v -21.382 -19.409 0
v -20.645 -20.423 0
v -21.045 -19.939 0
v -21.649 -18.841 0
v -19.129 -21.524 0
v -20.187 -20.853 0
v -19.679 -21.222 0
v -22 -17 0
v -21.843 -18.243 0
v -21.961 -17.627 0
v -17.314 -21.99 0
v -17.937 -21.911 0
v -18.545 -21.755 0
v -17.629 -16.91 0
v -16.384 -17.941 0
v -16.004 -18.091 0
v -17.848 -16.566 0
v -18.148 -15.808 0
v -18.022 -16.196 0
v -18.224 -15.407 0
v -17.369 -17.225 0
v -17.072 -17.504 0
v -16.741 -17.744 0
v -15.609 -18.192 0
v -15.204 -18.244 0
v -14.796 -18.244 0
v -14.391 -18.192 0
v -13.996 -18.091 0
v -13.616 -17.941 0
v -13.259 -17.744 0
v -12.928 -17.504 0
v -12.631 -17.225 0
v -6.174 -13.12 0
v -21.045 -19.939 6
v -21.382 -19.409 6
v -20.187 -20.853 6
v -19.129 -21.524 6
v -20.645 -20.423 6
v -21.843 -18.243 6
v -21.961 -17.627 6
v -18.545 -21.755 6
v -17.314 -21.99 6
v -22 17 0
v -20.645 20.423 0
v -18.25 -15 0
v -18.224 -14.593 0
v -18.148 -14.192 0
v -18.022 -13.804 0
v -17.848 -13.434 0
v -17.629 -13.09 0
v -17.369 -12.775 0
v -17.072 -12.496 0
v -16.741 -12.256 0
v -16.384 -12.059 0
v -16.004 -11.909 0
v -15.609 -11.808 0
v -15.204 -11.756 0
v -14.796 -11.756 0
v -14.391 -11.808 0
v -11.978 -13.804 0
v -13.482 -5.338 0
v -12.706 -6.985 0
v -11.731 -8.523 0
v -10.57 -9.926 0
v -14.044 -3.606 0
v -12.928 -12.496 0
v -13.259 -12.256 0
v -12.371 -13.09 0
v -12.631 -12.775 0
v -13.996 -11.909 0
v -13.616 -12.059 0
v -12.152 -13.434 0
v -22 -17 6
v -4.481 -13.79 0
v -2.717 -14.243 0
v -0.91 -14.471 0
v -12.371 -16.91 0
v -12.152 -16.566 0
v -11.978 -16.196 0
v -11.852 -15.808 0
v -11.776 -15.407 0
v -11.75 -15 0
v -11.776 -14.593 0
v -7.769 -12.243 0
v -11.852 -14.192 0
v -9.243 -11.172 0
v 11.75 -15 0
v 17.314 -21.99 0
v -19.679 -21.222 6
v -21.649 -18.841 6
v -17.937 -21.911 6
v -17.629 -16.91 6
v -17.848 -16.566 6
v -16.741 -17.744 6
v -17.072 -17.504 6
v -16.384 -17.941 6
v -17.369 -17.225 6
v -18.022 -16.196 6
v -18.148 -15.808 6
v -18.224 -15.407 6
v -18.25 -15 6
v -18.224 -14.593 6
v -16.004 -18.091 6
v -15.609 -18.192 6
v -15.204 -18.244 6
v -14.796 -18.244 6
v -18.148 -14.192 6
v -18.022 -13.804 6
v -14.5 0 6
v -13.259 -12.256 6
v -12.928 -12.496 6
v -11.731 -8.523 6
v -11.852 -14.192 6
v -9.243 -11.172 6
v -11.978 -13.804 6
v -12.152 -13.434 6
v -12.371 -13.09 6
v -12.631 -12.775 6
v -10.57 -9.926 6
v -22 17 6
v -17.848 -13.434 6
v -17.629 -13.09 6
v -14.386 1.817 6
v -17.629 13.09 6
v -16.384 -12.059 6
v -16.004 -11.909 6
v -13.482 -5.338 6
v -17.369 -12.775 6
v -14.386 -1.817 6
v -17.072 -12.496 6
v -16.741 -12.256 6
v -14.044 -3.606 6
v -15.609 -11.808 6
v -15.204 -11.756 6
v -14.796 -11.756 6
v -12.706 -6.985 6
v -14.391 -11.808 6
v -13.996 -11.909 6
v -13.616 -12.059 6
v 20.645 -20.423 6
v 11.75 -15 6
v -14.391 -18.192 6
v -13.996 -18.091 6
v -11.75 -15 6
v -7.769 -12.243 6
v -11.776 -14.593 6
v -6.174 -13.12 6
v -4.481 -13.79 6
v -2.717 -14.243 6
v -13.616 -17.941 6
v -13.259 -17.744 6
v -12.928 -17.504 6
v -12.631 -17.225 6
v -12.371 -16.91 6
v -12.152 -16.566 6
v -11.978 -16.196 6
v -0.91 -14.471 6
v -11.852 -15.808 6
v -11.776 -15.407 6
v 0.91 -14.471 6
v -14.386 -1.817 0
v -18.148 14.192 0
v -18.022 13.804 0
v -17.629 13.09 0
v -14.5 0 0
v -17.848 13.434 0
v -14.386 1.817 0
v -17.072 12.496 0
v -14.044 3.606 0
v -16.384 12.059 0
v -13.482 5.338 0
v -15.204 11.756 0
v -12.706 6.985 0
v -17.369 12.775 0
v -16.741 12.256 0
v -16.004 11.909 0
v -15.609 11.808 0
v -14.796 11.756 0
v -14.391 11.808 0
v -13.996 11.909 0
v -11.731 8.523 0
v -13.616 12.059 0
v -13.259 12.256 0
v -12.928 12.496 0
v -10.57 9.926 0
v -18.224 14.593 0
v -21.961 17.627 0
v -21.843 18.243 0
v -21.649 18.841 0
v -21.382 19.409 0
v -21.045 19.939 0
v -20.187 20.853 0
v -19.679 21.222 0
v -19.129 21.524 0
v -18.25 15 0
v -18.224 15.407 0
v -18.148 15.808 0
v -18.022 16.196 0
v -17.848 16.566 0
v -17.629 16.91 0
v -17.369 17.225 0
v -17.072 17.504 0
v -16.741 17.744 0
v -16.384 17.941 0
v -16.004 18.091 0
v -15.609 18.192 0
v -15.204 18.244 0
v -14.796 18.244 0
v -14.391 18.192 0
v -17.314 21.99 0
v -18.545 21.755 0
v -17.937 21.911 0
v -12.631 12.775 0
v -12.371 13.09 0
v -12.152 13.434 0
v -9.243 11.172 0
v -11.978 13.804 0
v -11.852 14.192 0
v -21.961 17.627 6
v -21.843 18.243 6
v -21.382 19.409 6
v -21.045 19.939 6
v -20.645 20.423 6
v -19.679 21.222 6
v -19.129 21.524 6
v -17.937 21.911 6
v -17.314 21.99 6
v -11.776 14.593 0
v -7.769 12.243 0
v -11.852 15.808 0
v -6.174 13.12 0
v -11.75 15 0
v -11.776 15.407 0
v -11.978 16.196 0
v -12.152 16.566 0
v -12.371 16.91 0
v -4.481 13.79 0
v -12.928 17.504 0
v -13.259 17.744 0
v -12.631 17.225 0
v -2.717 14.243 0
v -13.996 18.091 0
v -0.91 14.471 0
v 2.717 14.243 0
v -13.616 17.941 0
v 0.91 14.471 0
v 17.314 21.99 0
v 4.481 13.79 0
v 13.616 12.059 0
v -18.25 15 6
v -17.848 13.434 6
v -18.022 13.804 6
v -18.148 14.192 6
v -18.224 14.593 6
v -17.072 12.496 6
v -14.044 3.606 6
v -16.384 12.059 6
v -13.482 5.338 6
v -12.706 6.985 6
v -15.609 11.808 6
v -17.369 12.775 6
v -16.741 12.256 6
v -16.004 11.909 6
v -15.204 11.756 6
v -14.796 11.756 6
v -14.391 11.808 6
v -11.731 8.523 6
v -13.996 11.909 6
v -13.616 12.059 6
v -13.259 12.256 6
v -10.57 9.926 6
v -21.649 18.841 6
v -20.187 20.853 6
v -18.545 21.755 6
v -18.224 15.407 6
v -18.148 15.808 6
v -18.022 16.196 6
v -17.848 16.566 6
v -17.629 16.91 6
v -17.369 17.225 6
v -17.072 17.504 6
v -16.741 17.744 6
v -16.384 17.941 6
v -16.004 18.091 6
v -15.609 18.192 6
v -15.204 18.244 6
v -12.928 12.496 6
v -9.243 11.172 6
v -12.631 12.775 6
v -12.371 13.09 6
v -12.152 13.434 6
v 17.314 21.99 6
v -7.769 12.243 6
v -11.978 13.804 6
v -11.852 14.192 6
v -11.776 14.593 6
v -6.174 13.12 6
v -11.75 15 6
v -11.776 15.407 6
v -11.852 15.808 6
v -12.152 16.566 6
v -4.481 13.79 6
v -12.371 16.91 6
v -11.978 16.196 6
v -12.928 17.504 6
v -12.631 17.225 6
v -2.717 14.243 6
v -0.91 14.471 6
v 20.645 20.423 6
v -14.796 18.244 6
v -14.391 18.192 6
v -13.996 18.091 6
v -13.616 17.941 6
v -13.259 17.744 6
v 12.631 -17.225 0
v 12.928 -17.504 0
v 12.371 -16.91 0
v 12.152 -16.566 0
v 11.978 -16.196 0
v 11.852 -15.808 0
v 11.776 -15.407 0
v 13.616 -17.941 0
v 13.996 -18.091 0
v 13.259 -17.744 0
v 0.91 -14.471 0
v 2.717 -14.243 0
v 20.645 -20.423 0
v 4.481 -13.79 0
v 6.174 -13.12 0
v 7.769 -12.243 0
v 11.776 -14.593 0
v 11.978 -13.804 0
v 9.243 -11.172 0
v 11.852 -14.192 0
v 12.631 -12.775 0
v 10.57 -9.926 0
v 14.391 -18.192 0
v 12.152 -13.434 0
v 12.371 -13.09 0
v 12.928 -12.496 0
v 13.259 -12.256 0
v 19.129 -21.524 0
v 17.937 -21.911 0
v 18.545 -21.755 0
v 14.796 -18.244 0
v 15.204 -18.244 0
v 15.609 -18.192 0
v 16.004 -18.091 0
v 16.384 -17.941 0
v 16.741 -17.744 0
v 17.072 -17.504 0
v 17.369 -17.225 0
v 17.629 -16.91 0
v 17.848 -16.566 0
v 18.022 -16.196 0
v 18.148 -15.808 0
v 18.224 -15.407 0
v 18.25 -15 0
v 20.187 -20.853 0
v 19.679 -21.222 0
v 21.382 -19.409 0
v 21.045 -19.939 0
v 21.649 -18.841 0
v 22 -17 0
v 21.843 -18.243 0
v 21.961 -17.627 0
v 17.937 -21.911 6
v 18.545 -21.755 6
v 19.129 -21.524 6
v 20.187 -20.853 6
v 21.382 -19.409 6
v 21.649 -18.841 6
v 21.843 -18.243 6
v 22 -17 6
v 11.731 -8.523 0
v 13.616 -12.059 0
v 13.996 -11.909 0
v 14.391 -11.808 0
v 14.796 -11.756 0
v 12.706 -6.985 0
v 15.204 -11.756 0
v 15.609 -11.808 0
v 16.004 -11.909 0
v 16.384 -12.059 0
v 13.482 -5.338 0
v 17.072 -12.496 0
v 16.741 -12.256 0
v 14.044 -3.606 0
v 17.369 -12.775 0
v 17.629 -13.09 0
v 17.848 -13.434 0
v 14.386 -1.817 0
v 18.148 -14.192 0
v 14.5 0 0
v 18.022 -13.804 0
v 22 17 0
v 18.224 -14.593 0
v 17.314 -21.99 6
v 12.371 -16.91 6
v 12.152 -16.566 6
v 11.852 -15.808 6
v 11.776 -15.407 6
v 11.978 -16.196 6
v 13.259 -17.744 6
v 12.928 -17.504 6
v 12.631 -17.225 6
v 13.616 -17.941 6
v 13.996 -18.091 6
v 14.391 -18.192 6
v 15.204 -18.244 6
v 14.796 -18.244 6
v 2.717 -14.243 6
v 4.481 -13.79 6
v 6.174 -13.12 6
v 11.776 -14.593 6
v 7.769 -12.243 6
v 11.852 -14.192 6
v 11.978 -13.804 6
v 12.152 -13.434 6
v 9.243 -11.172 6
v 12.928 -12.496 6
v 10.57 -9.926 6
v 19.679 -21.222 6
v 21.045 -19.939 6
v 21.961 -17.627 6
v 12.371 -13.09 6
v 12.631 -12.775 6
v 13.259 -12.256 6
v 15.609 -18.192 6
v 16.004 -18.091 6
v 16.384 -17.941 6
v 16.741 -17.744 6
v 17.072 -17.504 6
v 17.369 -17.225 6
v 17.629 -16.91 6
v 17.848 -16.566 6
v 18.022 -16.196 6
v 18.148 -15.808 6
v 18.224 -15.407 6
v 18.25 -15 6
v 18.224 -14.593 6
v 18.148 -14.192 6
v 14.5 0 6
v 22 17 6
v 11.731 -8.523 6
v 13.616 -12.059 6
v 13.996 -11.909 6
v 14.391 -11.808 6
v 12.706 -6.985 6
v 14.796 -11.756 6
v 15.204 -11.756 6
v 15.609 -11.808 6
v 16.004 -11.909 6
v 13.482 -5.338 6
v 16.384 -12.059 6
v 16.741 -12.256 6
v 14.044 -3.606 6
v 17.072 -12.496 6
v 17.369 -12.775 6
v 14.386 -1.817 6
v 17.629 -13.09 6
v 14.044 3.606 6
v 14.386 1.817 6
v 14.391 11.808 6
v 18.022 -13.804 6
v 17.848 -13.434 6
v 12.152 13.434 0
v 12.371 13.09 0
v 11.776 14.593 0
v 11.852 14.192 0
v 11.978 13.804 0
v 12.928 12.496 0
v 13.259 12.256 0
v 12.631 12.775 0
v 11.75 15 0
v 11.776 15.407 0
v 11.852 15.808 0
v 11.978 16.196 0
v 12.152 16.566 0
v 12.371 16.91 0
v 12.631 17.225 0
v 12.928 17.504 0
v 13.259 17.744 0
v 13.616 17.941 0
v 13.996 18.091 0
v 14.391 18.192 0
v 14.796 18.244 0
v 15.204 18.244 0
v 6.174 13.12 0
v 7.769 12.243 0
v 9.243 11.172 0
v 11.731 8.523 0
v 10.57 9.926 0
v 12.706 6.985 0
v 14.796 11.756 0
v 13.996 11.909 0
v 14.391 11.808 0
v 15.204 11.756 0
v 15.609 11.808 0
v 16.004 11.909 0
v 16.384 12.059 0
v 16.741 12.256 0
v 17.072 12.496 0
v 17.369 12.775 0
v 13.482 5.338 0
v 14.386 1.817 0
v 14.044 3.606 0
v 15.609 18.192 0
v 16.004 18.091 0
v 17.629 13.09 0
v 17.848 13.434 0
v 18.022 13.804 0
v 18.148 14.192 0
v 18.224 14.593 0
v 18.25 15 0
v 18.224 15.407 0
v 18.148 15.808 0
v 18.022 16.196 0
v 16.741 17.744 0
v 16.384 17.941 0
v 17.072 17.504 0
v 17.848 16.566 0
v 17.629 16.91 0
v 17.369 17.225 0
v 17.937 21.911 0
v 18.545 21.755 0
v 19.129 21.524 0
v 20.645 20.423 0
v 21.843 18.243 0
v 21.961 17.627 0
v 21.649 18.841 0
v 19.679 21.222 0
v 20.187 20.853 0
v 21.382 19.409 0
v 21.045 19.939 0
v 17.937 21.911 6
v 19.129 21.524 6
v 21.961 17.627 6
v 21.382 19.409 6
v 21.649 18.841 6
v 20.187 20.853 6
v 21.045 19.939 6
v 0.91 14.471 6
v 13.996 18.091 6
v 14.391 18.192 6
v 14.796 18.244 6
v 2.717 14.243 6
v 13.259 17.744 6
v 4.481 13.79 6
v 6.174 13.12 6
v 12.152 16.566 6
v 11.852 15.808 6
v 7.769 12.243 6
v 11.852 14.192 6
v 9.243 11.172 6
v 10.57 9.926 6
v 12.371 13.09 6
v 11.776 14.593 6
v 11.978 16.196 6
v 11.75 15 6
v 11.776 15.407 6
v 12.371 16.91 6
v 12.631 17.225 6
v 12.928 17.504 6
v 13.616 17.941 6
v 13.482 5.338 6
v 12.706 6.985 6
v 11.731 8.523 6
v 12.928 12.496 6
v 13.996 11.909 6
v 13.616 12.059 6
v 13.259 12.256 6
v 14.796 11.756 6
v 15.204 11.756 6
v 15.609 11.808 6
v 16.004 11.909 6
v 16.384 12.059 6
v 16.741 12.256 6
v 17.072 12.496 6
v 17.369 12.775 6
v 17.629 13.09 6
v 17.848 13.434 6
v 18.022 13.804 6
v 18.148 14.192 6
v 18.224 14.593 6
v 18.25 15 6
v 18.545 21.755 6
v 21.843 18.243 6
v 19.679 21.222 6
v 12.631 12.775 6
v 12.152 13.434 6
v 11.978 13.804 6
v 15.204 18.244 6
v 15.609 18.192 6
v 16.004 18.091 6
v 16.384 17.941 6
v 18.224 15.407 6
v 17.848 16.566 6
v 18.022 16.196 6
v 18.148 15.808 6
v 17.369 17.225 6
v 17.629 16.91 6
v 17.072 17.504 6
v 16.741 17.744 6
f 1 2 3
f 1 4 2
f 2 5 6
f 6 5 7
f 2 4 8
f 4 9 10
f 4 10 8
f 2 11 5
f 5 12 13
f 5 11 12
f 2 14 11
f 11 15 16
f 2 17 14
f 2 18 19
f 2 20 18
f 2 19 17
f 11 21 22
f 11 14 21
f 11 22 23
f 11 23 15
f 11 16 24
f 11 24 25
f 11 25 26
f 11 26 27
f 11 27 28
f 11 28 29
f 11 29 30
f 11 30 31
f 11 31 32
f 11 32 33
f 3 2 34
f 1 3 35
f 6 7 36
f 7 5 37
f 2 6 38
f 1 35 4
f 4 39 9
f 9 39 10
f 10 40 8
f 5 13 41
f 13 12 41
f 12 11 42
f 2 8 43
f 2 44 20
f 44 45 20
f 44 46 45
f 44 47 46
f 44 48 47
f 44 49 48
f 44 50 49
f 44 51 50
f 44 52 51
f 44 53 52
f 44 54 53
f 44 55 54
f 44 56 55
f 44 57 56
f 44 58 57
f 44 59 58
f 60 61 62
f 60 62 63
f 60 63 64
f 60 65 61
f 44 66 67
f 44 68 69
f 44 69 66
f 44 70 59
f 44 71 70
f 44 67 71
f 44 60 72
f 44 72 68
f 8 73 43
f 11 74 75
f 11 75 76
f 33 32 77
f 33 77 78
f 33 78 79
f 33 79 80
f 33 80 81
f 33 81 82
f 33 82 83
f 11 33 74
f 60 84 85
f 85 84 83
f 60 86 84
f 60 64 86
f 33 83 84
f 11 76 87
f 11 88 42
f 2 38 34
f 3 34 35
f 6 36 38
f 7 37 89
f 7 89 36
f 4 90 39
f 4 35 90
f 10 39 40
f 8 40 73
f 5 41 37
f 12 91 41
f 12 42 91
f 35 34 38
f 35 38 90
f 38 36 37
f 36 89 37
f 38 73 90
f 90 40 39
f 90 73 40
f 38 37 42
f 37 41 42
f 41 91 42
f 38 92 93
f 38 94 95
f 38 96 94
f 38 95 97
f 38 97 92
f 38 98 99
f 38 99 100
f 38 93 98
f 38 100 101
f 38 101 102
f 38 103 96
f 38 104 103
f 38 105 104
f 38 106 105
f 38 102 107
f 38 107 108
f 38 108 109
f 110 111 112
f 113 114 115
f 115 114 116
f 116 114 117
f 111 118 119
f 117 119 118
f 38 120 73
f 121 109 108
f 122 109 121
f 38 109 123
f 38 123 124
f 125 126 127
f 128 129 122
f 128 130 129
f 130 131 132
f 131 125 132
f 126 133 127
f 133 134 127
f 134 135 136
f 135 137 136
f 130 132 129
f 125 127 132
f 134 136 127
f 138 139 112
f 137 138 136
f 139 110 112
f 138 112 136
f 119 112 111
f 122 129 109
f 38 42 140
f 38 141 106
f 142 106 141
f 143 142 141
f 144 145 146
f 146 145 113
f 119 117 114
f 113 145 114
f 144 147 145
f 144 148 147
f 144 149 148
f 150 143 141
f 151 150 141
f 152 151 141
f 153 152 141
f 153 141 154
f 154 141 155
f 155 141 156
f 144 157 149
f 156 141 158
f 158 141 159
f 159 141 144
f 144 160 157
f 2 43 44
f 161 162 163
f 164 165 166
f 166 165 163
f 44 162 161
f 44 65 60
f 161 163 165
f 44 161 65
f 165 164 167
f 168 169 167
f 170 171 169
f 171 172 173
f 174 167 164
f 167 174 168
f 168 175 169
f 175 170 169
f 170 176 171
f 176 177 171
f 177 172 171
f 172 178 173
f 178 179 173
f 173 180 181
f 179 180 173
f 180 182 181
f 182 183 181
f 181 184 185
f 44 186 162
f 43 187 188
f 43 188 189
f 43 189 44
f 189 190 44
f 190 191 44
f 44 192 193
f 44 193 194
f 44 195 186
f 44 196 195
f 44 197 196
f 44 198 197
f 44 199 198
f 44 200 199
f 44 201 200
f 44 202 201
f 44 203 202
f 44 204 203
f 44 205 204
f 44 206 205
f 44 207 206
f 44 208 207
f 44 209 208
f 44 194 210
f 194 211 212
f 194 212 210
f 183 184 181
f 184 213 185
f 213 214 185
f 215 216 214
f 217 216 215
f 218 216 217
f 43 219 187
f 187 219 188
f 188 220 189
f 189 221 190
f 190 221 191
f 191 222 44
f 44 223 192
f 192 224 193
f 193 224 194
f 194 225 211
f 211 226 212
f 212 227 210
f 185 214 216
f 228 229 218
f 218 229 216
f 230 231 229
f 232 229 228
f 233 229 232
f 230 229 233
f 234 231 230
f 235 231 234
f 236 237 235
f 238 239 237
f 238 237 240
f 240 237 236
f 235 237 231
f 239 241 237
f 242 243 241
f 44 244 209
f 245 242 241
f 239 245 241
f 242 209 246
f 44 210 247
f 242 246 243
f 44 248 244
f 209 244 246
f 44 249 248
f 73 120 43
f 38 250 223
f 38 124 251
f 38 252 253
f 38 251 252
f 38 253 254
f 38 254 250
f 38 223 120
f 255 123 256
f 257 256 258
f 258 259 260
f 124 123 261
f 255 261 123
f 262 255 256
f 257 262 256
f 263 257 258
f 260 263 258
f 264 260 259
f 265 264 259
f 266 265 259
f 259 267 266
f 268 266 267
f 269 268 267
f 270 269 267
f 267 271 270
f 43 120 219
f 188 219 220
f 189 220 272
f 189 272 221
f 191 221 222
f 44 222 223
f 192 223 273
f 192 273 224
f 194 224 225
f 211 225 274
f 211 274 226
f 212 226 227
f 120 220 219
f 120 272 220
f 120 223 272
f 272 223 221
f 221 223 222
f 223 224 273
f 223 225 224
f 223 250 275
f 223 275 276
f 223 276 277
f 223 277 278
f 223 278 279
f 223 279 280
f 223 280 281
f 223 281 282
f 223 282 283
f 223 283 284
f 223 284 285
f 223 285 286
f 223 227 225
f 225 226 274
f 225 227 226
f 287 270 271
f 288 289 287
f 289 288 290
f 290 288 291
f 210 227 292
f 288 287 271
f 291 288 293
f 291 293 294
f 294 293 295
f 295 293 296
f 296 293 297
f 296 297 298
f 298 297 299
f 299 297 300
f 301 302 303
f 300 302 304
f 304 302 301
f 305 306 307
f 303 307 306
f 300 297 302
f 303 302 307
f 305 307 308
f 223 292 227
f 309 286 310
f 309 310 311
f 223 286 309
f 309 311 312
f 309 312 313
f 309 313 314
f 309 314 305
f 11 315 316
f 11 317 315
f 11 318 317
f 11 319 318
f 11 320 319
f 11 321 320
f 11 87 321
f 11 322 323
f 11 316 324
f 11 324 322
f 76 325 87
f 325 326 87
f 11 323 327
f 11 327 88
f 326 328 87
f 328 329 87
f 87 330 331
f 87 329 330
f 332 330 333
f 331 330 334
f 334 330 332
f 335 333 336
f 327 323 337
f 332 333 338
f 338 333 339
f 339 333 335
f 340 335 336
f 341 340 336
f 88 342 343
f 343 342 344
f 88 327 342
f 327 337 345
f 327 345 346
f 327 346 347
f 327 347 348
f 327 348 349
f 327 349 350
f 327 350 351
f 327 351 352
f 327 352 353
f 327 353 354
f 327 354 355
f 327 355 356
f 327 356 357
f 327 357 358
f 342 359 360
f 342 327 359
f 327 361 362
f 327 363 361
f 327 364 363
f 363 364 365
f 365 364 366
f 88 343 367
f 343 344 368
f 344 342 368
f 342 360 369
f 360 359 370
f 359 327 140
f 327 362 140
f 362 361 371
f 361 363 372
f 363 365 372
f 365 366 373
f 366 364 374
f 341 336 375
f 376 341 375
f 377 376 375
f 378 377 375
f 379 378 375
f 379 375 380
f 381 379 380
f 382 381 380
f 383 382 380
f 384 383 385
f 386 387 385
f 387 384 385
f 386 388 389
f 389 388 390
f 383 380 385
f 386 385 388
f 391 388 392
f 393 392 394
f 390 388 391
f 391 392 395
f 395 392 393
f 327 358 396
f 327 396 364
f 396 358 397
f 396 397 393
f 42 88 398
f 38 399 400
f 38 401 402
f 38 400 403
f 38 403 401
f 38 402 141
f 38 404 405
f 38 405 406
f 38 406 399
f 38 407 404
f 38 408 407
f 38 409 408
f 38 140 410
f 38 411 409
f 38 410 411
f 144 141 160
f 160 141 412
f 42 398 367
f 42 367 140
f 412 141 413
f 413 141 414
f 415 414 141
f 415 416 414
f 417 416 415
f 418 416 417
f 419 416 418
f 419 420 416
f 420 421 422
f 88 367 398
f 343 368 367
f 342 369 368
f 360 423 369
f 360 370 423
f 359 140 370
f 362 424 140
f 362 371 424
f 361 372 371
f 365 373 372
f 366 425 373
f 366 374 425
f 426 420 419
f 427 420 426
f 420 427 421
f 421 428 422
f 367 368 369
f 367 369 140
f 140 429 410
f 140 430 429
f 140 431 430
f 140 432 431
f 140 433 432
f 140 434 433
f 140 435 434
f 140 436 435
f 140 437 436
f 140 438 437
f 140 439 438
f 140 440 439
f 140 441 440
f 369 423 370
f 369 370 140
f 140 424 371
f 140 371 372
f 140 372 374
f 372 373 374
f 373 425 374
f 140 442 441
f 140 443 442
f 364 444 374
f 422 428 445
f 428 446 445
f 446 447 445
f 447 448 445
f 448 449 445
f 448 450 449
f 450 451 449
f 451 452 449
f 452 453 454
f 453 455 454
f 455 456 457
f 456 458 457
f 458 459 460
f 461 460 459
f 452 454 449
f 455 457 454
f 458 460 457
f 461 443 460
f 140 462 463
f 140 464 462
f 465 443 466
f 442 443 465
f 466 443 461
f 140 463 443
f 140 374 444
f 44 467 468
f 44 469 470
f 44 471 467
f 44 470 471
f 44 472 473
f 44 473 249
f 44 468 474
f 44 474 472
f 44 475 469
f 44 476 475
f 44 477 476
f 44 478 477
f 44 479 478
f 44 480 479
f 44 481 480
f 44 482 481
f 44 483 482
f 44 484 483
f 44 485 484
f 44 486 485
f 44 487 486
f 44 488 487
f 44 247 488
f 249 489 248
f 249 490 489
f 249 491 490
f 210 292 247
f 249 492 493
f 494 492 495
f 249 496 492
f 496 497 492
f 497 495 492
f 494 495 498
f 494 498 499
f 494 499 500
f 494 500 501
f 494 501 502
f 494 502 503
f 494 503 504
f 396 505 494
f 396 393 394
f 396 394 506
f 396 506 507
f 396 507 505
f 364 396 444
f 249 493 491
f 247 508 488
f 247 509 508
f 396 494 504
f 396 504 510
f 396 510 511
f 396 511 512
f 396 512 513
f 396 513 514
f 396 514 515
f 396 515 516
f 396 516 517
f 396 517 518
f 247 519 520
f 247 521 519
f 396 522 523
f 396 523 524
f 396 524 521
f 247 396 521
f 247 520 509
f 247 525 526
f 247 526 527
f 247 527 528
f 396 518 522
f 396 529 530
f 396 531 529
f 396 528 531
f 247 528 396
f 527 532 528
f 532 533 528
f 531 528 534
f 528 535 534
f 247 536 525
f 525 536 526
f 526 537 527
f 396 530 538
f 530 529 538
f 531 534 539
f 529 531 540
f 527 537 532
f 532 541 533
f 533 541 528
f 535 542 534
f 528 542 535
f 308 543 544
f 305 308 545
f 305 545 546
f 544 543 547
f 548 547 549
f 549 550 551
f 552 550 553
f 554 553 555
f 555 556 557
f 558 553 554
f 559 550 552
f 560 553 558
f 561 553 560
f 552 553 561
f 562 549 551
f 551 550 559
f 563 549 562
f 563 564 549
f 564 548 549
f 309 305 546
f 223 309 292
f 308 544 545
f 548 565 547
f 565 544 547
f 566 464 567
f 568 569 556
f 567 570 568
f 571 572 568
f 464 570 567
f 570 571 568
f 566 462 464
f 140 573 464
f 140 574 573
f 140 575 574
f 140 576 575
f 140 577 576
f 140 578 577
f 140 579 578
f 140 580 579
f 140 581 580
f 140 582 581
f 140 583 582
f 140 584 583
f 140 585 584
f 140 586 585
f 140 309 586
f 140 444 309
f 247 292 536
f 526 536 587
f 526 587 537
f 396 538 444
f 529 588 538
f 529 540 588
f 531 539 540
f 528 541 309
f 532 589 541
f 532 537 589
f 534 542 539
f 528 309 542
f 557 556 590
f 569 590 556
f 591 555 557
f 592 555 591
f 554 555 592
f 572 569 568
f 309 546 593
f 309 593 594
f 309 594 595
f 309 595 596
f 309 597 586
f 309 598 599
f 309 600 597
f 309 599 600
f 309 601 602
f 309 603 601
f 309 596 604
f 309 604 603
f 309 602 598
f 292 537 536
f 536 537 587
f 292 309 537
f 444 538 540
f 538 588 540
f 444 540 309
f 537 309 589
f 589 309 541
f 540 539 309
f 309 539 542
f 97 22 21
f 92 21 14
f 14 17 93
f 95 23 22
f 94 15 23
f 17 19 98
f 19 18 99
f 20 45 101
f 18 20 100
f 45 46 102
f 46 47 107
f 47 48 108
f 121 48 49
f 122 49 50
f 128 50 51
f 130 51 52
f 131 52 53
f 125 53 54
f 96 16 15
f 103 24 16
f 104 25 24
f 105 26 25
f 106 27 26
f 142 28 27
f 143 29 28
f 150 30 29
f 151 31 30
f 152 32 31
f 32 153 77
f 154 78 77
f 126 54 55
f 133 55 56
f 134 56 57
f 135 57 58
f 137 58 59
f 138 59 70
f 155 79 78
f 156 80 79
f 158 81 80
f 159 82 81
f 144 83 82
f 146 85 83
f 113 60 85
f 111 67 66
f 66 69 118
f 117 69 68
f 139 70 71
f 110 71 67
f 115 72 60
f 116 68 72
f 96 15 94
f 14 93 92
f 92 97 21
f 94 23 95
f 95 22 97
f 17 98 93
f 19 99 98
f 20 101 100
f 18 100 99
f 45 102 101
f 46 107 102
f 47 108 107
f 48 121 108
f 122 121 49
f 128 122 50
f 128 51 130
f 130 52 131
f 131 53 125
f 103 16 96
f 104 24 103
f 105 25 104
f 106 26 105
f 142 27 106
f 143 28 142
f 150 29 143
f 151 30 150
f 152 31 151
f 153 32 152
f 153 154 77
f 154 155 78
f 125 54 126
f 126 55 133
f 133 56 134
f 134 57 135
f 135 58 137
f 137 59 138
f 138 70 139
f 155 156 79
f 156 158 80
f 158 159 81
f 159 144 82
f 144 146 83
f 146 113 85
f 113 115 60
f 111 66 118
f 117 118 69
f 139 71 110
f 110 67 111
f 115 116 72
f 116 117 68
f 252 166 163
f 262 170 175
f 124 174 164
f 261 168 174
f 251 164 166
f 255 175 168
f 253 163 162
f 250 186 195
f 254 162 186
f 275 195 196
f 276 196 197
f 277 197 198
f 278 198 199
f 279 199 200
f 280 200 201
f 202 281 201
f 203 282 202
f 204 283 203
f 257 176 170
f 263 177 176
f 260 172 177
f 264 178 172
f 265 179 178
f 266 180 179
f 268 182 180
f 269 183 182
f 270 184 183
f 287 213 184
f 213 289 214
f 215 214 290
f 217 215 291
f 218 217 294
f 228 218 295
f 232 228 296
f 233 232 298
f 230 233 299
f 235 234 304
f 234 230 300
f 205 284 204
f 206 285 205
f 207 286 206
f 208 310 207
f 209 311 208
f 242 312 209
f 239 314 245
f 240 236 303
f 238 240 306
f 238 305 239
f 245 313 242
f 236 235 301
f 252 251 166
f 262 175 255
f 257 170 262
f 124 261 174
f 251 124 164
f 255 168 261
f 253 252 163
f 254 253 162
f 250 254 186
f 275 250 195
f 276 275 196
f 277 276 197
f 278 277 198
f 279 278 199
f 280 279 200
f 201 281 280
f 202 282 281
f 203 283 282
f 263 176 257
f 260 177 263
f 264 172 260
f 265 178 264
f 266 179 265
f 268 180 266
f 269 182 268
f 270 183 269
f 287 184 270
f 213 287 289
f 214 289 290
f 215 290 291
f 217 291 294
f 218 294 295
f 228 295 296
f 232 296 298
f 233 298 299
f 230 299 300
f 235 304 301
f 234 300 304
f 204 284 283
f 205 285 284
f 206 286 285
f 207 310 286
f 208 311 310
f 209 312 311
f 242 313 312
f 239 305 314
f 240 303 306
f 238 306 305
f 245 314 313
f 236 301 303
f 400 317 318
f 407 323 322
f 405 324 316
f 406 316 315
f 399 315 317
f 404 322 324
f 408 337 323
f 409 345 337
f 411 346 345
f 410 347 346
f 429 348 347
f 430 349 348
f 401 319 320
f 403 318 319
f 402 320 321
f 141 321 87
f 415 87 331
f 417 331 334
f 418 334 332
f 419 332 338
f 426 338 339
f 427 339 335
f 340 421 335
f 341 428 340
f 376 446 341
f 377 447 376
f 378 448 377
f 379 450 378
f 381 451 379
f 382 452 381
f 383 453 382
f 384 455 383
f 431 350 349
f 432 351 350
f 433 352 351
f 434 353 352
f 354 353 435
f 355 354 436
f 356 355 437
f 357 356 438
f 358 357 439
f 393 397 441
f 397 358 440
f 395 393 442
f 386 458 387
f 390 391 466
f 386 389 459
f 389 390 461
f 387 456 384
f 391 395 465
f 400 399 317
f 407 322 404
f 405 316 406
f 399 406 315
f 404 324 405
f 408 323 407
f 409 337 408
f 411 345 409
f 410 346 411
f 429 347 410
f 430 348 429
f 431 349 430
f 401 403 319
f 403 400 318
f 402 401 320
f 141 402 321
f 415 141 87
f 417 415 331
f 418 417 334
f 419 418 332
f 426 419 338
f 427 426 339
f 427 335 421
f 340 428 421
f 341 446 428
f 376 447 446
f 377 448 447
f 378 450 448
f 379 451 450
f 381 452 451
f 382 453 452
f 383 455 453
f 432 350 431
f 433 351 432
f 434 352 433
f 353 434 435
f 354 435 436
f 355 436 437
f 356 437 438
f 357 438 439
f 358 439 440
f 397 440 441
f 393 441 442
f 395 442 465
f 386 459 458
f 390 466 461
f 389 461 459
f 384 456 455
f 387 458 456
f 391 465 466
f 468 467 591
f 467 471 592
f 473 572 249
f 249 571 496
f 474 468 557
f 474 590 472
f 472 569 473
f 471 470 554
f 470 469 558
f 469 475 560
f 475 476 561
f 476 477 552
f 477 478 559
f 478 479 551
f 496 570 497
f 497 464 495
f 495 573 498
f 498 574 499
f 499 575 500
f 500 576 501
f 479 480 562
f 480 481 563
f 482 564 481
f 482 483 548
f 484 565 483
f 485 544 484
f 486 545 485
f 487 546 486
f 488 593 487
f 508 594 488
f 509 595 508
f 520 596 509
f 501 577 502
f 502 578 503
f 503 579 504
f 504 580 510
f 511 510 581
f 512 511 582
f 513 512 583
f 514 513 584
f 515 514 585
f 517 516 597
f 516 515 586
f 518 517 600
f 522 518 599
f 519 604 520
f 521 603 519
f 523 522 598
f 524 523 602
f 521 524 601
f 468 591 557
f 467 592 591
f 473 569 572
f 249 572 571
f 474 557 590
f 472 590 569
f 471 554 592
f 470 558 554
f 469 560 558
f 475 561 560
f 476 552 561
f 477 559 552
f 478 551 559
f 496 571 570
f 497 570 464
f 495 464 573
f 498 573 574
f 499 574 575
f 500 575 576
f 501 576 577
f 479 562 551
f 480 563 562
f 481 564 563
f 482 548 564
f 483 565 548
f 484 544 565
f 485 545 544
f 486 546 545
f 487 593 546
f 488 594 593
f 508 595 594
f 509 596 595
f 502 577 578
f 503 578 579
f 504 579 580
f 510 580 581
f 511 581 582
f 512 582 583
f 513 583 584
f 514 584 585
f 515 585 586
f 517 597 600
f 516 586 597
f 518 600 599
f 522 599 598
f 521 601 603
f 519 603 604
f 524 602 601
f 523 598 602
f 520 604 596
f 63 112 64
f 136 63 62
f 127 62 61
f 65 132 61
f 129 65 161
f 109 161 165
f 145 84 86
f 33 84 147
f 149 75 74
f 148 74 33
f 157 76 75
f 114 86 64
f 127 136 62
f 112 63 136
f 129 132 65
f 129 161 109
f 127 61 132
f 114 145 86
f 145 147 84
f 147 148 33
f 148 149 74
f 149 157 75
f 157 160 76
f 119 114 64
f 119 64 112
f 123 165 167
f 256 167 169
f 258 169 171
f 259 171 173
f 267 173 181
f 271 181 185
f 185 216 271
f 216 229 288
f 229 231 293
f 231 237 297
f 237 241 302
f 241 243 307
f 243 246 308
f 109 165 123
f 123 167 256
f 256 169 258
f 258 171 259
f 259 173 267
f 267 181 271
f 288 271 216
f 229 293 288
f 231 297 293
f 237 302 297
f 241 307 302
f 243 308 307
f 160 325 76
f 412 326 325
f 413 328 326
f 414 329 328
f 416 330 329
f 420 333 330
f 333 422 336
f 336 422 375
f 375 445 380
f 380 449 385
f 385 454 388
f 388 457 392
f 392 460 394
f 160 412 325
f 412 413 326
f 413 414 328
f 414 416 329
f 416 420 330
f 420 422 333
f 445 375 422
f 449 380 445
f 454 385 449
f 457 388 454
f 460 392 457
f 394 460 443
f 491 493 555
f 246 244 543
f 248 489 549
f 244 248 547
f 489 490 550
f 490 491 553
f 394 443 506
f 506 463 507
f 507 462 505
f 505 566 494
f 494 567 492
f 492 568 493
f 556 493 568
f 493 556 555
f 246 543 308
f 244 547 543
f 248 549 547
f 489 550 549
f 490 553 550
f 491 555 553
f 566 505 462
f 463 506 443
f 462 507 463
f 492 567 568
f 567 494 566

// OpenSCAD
$fn = 50;

difference() {
	union() {
		hull() {
			translate(v = [-17.0, 17.0, 0]) {
				cylinder(h = 6, r = 5);
			}
			translate(v = [17.0, 17.0, 0]) {
				cylinder(h = 6, r = 5);
			}
			translate(v = [-17.0, -17.0, 0]) {
				cylinder(h = 6, r = 5);
			}
			translate(v = [17.0, -17.0, 0]) {
				cylinder(h = 6, r = 5);
			}
		}
	}
	union() {
		translate(v = [-15.0, -15.0, -100.0]) {
			cylinder(h = 200, r = 3.25);
		}
		translate(v = [-15.0, 15.0, -100.0]) {
			cylinder(h = 200, r = 3.25);
		}
		translate(v = [15.0, -15.0, -100.0]) {
			cylinder(h = 200, r = 3.25);
		}
		translate(v = [15.0, 15.0, -100.0]) {
			cylinder(h = 200, r = 3.25);
		}
		translate(v = [-15.0, -15.0, -100.0]) {
			cylinder(h = 200, r = 1.8);
		}
		translate(v = [-15.0, 15.0, -100.0]) {
			cylinder(h = 200, r = 1.8);
		}
		translate(v = [15.0, -15.0, -100.0]) {
			cylinder(h = 200, r = 1.8);
		}
		translate(v = [15.0, 15.0, -100.0]) {
			cylinder(h = 200, r = 1.8);
		}
		cylinder(h = 6, r = 14.5);
	}
}
